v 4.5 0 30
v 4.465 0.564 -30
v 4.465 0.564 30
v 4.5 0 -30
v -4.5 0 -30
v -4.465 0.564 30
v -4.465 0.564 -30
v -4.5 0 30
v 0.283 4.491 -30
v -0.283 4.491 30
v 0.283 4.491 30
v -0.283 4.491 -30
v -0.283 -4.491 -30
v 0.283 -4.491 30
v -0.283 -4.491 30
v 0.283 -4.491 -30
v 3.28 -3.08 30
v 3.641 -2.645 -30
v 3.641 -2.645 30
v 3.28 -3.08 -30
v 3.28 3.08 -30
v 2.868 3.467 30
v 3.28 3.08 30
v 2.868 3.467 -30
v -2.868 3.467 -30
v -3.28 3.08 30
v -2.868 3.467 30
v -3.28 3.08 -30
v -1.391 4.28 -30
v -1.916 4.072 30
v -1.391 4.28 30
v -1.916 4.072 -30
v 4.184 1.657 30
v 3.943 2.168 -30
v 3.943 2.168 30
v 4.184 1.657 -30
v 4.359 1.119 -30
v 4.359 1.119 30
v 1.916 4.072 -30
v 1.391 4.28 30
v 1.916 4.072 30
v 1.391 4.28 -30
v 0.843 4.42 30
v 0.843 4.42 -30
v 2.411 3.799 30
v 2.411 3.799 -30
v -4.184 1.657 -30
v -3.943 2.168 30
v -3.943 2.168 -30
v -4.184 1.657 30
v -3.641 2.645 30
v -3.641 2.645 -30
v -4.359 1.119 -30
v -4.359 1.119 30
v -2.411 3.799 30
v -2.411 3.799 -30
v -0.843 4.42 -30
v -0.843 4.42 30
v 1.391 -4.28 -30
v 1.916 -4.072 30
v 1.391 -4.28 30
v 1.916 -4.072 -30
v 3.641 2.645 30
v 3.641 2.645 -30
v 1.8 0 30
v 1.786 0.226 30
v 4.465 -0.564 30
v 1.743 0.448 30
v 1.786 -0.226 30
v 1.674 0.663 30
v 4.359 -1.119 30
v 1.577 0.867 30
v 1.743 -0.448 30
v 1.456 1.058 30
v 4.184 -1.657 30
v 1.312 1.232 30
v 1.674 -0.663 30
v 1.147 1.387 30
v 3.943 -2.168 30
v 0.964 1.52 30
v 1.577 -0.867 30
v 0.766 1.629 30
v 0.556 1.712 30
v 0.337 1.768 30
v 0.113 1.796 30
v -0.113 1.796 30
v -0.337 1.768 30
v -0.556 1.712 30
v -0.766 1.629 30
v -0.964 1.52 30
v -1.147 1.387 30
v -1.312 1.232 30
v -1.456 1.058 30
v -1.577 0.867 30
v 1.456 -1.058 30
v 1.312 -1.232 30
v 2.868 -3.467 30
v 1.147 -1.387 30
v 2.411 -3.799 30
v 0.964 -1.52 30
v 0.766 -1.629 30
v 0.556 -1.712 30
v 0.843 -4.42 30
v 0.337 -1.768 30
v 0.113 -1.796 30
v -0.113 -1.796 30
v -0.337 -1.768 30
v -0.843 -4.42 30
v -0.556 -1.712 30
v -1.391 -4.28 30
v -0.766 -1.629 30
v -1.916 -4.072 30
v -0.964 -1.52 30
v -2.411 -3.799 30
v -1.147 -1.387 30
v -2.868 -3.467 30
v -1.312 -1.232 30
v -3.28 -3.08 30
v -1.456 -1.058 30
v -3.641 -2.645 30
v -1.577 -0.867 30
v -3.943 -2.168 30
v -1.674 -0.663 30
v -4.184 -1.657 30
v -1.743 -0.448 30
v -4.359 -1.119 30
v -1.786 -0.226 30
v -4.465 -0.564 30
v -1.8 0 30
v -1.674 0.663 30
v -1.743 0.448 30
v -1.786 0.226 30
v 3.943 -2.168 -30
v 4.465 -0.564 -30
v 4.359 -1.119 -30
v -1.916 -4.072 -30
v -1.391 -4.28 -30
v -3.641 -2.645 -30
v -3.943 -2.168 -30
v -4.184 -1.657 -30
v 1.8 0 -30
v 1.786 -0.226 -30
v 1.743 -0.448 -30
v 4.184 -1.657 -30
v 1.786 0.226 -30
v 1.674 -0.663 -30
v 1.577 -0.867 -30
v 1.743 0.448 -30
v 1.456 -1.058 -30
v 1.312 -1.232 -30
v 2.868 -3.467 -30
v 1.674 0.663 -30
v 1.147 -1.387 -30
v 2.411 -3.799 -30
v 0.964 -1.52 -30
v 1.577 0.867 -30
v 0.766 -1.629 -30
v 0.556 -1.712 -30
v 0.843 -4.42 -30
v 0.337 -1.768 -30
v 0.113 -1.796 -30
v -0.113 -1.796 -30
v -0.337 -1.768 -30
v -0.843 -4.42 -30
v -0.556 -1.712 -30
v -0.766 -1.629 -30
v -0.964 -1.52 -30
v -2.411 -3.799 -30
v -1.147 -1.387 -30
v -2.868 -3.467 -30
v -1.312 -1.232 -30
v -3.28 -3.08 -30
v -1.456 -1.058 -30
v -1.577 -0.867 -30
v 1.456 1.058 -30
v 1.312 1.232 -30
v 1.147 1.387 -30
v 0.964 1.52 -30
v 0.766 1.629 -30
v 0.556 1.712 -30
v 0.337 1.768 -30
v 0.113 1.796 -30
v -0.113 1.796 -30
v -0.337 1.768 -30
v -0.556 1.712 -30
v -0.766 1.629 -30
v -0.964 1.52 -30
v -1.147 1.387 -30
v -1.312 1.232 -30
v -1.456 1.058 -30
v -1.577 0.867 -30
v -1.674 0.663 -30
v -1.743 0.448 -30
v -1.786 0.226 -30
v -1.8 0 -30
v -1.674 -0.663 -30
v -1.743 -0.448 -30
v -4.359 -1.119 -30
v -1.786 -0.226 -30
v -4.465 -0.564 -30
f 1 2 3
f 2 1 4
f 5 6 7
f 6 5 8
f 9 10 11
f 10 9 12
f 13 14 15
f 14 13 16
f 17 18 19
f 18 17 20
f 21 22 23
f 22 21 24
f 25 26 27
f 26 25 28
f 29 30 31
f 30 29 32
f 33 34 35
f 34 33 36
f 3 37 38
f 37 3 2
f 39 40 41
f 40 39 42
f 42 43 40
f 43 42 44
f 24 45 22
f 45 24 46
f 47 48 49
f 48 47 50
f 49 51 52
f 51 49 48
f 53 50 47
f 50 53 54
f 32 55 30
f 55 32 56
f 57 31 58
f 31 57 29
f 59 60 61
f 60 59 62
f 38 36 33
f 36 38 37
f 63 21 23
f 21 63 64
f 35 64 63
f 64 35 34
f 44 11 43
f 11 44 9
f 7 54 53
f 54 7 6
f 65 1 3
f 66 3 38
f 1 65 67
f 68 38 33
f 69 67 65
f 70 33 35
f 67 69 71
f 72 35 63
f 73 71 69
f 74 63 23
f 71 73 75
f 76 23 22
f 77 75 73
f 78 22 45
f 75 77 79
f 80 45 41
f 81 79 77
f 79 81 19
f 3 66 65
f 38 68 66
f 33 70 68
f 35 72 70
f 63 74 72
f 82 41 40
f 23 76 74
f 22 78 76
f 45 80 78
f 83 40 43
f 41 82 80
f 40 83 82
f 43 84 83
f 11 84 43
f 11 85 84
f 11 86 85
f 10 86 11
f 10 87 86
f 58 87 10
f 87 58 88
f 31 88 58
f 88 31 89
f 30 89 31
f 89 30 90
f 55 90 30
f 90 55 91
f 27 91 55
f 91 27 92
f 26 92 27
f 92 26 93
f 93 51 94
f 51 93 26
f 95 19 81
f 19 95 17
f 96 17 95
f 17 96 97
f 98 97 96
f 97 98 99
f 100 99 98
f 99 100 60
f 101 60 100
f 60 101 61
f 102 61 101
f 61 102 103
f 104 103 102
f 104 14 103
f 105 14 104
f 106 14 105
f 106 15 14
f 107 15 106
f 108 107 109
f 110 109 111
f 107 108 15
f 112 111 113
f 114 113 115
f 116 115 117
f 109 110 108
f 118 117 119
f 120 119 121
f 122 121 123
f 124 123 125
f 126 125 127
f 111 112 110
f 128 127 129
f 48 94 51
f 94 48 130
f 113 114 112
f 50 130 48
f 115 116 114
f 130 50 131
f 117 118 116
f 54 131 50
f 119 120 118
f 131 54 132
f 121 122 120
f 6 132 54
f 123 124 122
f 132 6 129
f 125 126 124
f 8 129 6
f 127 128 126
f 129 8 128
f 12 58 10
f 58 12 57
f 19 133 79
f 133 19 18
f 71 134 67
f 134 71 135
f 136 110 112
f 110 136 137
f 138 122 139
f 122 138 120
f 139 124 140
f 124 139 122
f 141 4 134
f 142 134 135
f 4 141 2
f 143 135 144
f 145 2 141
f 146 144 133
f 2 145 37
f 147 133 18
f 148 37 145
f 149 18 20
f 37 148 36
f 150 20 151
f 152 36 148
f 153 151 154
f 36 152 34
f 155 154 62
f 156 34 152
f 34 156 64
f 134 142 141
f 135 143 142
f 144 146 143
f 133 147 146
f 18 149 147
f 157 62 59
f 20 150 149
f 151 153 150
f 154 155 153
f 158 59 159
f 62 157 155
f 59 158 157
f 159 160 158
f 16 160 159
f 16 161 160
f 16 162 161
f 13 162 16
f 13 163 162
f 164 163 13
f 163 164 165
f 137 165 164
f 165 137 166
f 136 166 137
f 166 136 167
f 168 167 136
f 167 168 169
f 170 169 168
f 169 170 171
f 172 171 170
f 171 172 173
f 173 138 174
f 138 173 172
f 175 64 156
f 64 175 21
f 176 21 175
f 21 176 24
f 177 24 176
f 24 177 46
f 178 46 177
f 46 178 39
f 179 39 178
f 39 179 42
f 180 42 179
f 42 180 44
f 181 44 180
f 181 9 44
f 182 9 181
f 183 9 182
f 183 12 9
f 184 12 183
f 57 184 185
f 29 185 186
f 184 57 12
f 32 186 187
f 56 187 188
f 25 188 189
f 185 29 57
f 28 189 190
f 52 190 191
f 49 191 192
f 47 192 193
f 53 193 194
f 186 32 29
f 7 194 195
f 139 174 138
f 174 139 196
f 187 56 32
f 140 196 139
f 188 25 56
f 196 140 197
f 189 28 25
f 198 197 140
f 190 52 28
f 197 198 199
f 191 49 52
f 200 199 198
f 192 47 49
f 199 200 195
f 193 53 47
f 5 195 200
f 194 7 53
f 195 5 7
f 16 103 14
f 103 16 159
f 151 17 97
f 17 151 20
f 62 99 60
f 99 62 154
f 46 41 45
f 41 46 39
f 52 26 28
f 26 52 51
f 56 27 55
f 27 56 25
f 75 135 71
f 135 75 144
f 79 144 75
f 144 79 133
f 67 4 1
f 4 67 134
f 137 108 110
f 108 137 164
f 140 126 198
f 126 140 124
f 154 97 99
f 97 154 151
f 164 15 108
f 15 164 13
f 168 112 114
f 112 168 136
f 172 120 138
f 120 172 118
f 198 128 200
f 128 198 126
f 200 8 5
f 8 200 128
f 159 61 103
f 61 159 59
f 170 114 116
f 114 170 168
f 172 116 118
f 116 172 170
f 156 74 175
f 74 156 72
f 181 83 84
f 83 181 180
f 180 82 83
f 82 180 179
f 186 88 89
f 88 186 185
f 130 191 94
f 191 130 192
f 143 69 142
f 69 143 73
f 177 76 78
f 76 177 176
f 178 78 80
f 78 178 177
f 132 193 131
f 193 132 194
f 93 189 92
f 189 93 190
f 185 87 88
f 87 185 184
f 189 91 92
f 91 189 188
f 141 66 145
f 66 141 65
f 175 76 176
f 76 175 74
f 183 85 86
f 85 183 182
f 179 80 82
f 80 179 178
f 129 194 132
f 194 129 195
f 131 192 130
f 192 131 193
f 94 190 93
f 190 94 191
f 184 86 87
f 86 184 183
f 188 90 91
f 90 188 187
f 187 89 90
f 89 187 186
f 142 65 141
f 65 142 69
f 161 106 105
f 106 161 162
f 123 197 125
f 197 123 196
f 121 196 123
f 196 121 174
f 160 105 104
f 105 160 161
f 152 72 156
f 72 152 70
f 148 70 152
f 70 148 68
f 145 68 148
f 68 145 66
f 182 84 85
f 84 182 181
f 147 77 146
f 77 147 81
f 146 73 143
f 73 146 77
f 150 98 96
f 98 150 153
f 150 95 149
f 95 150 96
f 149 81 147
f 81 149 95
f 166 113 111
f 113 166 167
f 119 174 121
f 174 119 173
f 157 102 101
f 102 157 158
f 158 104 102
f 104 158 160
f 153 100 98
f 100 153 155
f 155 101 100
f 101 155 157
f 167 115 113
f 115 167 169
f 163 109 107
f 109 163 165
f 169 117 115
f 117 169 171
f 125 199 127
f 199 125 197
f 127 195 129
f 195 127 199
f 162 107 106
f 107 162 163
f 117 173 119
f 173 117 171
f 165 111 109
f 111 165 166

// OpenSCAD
$fn = 50;


difference() {
	union() {
		translate(v = [0, 0, -30.0000000000]) {
			cylinder(h = 60, r = 4.5000000000);
		}
	}
	union() {
		translate(v = [0, 0, -100.0000000000]) {
			cylinder(h = 200, r = 1.8000000000);
		}
	}
}
